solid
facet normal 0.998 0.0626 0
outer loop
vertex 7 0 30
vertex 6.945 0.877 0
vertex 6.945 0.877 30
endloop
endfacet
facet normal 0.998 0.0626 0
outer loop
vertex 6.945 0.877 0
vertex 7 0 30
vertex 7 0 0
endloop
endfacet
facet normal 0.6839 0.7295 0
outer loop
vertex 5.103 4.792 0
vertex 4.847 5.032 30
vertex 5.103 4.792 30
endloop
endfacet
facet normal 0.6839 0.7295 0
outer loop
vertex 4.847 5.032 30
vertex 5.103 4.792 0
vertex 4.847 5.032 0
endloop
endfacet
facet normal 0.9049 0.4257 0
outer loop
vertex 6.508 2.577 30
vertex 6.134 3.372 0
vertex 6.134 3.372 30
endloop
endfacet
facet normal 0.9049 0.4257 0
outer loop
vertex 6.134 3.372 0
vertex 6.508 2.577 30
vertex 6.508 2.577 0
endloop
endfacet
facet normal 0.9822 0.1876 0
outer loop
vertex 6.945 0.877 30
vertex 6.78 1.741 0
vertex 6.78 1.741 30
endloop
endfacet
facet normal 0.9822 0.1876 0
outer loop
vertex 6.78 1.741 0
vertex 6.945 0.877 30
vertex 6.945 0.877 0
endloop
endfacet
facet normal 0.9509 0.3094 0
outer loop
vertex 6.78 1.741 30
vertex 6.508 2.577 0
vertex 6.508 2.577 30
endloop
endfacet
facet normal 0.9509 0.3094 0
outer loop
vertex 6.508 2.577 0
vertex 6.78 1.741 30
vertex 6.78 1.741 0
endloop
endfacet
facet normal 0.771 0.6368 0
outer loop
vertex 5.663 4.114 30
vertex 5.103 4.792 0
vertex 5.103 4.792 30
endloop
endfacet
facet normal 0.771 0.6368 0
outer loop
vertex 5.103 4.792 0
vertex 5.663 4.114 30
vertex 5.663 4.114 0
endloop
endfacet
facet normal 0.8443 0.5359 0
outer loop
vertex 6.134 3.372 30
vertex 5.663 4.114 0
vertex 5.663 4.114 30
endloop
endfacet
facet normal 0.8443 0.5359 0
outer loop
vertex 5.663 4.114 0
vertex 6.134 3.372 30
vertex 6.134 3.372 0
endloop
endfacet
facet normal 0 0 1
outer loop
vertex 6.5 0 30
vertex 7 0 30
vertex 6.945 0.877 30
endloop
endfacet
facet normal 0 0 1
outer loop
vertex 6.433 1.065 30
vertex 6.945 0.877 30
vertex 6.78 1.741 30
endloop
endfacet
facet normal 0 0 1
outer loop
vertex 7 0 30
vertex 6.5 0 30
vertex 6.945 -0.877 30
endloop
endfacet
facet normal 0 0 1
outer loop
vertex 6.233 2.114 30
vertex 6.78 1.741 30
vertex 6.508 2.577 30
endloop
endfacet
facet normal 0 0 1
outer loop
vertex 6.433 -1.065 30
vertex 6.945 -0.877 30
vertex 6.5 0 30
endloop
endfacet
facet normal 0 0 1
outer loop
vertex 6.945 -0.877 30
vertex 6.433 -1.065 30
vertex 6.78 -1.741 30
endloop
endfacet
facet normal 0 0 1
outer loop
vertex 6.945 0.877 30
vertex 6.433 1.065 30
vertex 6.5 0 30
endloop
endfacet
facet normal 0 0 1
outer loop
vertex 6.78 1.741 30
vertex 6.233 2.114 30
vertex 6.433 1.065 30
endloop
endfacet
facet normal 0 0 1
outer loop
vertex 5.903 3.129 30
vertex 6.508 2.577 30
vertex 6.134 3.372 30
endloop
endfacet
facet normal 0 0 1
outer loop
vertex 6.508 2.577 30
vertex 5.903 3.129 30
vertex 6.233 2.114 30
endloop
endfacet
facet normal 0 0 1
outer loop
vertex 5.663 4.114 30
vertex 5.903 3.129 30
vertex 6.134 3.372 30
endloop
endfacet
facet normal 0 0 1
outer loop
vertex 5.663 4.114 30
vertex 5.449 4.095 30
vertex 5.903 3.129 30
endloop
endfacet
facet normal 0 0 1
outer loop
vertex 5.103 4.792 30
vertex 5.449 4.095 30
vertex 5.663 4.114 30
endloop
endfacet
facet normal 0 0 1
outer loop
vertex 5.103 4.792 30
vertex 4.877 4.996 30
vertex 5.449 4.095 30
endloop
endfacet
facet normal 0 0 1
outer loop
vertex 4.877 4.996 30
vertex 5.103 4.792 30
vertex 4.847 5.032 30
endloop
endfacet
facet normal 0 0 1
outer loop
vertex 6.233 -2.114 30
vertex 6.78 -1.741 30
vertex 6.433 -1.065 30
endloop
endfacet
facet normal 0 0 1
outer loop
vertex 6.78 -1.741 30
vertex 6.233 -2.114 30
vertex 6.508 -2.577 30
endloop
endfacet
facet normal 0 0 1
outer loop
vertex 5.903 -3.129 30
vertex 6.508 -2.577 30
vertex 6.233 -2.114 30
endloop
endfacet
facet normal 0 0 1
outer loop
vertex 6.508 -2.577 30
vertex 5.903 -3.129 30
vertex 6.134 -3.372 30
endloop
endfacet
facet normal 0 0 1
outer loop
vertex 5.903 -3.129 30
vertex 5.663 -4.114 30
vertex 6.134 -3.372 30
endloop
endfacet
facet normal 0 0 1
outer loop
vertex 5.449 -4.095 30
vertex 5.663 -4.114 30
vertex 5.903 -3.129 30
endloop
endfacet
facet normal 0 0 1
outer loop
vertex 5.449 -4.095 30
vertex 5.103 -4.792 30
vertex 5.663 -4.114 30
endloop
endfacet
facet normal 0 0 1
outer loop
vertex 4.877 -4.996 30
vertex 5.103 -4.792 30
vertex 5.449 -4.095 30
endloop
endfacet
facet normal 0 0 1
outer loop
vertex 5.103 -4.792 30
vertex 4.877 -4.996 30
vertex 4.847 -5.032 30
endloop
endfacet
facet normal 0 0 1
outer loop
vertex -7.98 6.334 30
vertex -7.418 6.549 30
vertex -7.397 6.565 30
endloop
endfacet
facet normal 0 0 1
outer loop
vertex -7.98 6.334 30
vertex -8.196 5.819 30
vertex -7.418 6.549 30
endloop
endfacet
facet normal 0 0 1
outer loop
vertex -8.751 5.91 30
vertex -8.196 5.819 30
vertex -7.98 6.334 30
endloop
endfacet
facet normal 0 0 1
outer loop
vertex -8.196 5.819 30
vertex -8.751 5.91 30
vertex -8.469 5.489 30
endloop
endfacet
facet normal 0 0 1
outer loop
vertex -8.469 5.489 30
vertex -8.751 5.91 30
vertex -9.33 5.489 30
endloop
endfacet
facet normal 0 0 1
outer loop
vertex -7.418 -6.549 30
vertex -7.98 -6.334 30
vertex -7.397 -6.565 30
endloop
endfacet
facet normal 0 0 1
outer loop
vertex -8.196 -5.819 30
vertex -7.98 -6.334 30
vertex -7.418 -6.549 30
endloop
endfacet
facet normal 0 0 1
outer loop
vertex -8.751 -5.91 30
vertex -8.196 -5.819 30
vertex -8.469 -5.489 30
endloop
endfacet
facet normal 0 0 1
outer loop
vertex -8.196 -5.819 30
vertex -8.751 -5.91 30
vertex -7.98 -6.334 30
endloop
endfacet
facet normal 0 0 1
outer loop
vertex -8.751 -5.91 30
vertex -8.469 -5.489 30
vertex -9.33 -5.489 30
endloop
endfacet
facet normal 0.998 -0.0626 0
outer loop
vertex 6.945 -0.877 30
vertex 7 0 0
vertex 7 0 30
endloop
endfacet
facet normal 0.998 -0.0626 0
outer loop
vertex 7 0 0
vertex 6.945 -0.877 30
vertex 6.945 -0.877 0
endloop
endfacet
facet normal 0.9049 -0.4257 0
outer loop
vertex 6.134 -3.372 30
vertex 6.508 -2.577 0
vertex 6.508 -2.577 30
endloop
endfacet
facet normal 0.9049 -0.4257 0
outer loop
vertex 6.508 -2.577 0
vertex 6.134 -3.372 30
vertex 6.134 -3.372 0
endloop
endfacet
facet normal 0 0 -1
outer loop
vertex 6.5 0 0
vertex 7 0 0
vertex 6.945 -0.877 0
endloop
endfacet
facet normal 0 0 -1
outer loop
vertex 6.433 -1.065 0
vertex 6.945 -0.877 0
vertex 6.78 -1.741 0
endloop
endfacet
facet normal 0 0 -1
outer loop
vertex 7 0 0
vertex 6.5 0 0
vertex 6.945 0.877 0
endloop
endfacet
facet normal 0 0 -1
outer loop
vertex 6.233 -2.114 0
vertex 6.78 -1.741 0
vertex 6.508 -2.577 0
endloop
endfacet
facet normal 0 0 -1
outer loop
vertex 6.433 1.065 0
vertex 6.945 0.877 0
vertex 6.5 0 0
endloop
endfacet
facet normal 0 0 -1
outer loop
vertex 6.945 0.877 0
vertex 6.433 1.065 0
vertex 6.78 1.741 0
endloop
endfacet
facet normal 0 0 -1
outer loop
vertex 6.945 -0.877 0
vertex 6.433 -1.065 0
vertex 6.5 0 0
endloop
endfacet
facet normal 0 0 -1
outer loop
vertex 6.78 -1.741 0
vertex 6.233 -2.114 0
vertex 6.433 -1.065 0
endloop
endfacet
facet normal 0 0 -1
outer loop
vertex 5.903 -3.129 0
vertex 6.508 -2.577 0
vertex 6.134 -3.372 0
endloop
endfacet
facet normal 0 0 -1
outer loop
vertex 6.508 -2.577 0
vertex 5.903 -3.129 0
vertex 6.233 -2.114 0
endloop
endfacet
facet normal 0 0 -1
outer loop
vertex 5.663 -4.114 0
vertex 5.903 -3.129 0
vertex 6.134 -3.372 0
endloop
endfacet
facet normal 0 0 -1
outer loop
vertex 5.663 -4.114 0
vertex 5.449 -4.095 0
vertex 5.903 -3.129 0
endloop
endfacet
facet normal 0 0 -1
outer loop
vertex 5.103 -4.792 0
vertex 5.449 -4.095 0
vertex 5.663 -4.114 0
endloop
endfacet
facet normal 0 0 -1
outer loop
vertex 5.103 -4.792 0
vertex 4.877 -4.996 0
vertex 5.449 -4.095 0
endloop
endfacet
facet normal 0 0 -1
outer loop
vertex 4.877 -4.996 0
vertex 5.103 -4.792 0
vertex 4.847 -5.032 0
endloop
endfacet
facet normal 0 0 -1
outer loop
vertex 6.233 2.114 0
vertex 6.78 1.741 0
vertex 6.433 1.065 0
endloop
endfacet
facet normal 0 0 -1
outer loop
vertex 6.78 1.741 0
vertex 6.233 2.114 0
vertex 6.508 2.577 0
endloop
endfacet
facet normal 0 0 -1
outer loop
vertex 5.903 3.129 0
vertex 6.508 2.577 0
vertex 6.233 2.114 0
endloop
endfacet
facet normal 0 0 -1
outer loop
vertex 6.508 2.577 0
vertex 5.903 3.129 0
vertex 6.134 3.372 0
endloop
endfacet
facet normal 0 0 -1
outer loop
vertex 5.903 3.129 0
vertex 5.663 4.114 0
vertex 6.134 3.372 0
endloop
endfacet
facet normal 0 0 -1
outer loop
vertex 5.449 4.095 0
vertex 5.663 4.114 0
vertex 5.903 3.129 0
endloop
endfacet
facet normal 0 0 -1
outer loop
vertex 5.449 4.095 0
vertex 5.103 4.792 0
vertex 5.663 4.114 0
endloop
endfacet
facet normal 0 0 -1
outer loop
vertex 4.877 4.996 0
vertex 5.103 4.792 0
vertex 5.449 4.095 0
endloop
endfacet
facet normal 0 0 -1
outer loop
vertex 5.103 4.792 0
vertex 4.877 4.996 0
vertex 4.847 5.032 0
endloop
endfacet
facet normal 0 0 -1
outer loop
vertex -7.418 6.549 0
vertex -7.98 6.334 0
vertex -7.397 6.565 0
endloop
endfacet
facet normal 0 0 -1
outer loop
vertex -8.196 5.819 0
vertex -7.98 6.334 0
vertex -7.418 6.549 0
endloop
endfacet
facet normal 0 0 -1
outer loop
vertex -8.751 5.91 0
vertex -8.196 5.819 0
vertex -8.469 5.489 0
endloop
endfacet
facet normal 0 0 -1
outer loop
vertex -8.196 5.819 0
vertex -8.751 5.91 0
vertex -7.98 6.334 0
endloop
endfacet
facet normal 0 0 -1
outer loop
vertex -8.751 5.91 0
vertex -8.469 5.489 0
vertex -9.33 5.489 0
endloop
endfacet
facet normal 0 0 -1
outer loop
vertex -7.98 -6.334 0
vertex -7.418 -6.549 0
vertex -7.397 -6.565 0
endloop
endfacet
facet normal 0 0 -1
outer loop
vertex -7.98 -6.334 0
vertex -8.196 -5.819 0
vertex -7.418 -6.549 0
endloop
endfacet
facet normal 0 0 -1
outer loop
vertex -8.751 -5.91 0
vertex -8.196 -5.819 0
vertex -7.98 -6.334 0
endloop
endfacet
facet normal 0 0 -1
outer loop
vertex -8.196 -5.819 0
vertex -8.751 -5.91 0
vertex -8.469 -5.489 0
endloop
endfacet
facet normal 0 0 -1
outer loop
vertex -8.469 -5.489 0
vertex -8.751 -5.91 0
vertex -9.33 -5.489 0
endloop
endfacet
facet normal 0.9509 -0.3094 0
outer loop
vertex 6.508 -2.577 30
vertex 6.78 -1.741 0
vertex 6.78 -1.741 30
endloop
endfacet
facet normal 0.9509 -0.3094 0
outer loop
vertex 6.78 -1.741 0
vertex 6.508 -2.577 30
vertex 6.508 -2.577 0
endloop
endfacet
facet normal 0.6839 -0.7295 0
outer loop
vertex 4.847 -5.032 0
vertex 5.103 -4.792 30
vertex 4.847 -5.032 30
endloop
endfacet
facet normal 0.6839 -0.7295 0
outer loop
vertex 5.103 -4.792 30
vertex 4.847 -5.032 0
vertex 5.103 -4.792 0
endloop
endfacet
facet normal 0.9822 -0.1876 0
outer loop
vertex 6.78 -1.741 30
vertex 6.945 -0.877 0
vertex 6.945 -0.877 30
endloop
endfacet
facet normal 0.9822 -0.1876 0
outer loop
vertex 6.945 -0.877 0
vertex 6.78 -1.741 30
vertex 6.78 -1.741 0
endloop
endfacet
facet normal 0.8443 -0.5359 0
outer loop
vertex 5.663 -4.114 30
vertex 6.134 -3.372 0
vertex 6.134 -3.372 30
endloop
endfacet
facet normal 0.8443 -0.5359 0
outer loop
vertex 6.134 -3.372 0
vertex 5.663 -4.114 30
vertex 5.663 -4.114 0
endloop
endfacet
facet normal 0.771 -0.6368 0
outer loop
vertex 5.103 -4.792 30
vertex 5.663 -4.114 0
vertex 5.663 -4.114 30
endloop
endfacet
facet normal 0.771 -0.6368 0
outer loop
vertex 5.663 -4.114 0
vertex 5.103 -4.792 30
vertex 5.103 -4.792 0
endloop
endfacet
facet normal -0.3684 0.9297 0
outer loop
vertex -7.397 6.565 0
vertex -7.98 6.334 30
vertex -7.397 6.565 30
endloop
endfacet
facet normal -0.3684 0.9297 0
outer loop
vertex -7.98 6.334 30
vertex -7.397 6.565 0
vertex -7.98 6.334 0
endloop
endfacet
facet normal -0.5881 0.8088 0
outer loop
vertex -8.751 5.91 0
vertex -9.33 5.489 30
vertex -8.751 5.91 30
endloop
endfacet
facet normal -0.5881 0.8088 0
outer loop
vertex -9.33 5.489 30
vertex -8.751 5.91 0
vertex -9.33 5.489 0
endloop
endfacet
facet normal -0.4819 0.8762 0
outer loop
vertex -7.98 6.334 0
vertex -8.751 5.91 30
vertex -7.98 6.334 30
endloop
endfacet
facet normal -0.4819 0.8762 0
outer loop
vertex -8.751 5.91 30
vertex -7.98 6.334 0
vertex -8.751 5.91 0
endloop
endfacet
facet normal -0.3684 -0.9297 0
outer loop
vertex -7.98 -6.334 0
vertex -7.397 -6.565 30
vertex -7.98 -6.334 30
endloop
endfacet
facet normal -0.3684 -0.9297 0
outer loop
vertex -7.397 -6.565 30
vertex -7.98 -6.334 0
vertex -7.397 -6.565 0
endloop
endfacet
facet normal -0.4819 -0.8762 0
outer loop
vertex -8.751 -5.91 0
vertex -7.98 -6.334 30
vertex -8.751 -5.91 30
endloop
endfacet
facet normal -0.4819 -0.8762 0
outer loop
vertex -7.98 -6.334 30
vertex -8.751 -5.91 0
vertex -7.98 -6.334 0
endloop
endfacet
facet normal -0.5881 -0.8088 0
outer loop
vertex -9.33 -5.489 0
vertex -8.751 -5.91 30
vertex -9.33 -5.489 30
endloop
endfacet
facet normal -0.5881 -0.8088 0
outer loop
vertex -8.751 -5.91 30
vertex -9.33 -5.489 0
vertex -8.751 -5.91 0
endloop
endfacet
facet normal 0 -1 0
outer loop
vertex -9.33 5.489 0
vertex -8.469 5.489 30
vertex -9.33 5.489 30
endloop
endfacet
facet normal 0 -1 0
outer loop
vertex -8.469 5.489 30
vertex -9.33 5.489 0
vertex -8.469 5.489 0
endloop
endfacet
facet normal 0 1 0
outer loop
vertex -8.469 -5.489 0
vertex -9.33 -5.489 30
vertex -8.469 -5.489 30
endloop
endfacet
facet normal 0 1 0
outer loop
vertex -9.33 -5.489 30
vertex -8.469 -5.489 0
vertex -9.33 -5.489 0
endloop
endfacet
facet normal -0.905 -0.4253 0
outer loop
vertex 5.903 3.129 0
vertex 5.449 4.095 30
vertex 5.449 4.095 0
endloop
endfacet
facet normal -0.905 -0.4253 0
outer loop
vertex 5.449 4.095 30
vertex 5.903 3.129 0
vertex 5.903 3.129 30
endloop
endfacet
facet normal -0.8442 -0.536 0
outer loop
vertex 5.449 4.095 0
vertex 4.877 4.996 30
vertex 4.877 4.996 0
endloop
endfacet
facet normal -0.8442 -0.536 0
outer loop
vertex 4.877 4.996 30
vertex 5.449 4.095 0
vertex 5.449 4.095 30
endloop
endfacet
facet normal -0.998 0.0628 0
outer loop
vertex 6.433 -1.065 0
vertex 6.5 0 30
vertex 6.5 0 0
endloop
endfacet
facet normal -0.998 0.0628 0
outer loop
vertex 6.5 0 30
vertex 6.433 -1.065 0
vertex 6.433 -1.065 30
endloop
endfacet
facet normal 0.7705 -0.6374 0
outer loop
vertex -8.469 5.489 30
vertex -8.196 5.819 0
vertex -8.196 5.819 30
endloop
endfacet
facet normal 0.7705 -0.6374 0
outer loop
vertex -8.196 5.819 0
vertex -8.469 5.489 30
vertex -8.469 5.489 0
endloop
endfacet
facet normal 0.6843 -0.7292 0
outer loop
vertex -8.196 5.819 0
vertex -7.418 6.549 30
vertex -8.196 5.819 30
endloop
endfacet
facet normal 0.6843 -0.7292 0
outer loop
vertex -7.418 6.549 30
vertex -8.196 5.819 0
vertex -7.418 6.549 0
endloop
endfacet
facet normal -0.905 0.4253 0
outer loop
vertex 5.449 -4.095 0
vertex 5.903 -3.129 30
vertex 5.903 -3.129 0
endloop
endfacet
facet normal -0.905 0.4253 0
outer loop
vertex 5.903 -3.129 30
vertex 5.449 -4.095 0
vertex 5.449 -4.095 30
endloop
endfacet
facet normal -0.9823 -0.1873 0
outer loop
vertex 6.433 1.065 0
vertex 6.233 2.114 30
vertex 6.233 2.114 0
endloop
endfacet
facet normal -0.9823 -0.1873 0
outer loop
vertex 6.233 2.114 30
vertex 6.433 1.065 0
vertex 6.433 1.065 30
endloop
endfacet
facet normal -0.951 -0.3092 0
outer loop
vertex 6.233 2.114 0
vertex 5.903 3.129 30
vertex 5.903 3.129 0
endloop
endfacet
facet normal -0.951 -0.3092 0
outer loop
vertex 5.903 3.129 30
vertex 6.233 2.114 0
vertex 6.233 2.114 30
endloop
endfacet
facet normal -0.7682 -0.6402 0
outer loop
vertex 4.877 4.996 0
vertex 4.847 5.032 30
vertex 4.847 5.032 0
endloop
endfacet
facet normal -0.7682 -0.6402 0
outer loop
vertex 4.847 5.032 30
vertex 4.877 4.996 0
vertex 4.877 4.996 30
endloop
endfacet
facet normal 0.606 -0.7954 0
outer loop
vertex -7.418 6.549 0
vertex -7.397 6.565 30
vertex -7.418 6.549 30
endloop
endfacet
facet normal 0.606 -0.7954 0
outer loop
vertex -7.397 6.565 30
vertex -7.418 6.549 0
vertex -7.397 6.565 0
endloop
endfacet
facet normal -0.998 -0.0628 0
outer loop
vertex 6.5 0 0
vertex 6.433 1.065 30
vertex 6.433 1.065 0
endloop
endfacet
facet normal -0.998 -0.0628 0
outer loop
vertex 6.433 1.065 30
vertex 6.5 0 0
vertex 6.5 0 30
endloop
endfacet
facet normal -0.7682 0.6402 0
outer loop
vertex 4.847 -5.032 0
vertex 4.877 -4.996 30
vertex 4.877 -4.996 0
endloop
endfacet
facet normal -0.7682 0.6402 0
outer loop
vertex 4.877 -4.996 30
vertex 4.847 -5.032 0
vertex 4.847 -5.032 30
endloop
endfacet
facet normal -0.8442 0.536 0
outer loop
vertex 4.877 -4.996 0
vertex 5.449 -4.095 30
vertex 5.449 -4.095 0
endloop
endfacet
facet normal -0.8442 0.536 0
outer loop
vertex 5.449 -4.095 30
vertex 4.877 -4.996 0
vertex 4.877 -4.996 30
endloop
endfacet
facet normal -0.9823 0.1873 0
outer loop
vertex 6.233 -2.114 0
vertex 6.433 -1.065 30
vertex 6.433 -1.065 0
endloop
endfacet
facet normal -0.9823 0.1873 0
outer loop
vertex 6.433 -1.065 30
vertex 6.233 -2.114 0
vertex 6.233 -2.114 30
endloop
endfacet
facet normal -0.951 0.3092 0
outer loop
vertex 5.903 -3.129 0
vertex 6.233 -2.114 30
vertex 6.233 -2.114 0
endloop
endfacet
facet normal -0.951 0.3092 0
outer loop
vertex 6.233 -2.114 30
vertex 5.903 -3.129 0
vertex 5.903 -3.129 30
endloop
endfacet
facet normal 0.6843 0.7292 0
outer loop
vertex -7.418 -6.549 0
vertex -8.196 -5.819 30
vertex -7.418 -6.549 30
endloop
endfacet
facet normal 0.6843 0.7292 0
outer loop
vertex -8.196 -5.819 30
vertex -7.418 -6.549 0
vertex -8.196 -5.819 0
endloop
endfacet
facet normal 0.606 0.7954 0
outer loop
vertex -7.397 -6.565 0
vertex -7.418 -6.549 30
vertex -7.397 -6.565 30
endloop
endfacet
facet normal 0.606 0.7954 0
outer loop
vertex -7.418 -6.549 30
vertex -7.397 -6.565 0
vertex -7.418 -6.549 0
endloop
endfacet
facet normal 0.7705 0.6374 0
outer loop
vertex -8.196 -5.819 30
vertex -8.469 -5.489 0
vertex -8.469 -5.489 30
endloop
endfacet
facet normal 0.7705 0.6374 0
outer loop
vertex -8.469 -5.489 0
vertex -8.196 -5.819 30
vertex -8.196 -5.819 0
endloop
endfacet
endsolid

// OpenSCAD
$fn = 50;


difference() {
	union() {
		cylinder(h = 30, r = 7.0000000000);
		translate(v = [-5.0000000000, 0, 0]) {
			cylinder(h = 30, r = 7.0000000000);
		}
	}
	union() {
		cylinder(h = 30, r = 3.2500000000);
		cylinder(h = 30, r = 1.8000000000);
		cylinder(h = 30, r = 1.8000000000);
		cylinder(h = 30, r = 1.8000000000);
		translate(v = [-9.5000000000, 0, 0]) {
			hull() {
				translate(v = [-3.7500000000, 0.0000000000, 0]) {
					cylinder(h = 30, r = 5.5000000000);
				}
				translate(v = [3.7500000000, 0.0000000000, 0]) {
					cylinder(h = 30, r = 5.5000000000);
				}
				translate(v = [-3.7500000000, -0.0000000000, 0]) {
					cylinder(h = 30, r = 5.5000000000);
				}
				translate(v = [3.7500000000, -0.0000000000, 0]) {
					cylinder(h = 30, r = 5.5000000000);
				}
			}
		}
		translate(v = [-2.0000000000, 0, 0.0000000000]) {
			cylinder(h = 30, r = 8.5000000000);
		}
	}
}
